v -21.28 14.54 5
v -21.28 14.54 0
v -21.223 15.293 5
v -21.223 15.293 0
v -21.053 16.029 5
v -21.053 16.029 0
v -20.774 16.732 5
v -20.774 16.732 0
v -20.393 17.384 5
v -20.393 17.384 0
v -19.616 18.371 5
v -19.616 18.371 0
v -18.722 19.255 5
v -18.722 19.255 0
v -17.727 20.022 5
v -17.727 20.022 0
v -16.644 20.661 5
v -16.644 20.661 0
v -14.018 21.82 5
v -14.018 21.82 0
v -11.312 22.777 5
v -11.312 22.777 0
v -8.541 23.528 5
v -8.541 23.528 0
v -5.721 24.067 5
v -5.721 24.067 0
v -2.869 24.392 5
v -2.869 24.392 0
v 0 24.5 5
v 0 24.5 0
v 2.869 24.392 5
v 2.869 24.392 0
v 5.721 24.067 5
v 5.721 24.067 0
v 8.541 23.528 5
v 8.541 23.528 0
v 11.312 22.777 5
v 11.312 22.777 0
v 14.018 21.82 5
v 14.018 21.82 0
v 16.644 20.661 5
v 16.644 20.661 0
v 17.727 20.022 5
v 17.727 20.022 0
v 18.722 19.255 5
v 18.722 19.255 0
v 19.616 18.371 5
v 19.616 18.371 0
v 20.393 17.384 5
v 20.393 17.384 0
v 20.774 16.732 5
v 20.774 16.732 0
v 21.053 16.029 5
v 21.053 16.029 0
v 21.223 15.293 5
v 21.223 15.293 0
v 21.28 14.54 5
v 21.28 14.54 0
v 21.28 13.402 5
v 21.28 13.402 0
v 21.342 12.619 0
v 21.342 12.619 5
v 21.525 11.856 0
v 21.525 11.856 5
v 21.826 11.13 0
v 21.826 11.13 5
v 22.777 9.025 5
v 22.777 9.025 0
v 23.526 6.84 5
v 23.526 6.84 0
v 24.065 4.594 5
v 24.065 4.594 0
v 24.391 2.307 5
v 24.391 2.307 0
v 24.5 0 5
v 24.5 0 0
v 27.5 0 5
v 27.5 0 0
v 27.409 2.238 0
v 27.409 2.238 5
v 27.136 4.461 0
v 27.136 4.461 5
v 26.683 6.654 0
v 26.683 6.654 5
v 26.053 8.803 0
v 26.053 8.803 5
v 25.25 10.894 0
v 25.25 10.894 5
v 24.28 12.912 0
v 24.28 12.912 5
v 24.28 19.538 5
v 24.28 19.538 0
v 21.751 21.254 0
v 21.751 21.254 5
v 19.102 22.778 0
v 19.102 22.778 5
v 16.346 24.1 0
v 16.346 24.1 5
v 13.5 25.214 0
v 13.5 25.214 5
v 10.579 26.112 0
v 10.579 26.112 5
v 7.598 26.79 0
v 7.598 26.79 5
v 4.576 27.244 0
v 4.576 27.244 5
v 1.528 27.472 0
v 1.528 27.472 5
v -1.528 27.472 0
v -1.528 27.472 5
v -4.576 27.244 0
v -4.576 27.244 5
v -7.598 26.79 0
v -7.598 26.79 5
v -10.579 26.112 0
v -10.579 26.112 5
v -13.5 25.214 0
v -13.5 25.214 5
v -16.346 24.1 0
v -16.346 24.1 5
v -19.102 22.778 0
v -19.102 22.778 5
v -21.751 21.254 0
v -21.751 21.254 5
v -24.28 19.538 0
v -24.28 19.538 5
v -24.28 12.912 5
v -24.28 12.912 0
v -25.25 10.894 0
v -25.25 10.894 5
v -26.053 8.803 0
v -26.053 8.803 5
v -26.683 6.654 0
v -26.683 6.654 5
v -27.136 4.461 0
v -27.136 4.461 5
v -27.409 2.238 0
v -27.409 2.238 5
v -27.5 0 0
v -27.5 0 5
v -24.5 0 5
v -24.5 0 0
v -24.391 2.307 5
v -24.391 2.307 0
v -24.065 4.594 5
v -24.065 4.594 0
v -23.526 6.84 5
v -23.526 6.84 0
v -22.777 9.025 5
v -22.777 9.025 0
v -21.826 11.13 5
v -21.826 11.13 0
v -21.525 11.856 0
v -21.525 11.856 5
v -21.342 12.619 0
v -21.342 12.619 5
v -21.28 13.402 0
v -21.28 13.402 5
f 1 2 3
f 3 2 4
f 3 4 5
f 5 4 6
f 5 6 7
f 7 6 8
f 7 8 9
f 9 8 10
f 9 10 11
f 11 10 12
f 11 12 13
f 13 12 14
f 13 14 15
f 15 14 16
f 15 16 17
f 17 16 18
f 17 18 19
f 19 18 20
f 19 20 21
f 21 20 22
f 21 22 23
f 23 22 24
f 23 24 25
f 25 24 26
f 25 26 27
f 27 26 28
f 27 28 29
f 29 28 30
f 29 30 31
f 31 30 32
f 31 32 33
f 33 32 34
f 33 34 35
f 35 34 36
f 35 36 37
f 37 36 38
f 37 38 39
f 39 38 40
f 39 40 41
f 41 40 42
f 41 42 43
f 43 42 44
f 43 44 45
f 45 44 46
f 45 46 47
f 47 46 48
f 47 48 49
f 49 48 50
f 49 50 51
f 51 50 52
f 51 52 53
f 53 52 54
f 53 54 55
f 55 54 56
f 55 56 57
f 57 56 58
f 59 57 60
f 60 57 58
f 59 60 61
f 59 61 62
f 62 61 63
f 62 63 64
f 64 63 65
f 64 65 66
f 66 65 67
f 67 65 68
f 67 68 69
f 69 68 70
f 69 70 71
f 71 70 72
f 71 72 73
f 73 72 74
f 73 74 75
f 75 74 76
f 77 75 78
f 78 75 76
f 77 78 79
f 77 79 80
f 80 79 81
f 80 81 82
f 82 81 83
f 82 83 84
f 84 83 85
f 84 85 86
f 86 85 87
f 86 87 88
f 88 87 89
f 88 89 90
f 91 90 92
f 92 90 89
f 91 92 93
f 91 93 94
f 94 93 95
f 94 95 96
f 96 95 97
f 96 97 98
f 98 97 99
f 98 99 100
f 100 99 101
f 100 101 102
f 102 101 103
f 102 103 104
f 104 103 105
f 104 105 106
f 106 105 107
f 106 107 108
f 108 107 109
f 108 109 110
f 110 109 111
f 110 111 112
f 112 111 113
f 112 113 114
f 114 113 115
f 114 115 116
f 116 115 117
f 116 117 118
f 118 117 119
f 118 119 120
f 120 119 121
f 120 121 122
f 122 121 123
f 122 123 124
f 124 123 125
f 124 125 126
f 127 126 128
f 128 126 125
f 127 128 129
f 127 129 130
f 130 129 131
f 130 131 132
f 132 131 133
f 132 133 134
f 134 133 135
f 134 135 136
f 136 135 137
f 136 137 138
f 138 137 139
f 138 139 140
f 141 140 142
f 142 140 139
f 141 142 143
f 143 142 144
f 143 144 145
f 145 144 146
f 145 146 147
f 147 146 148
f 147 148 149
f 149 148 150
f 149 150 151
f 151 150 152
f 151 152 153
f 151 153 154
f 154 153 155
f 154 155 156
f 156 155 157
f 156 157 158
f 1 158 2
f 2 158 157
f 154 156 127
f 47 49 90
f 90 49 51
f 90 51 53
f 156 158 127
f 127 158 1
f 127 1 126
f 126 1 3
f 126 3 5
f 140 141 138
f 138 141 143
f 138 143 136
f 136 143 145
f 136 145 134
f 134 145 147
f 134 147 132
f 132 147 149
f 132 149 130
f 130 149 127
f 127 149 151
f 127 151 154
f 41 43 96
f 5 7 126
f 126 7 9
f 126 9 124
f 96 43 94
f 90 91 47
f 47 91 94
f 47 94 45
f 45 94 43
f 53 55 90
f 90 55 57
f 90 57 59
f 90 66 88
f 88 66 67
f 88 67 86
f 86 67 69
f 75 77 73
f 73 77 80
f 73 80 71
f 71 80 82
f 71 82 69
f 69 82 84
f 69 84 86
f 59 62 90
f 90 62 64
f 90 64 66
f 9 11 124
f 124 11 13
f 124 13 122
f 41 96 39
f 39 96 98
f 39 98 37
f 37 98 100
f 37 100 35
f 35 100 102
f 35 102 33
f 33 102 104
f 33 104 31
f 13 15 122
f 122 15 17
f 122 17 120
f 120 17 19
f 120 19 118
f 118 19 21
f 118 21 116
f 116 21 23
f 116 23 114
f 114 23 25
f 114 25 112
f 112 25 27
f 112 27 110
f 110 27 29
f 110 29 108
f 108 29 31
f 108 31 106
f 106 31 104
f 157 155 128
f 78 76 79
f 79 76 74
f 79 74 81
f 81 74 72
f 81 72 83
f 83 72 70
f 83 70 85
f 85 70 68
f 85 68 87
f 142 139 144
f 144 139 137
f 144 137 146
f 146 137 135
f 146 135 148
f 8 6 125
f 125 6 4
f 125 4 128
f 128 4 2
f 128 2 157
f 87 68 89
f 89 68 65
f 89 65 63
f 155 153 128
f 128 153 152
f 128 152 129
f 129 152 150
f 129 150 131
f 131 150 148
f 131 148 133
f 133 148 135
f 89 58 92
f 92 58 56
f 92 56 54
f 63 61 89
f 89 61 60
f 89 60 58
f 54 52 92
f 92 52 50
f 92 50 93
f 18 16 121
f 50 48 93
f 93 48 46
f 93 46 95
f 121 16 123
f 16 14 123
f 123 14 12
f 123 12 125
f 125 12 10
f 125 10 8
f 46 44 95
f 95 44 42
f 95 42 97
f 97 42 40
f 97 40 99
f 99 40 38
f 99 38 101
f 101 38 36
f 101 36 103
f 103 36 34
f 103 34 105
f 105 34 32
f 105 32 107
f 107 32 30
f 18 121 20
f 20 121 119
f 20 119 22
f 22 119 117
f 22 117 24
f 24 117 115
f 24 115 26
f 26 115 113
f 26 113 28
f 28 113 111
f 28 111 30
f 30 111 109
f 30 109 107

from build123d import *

# Parameters (mm, degrees)
BOSS_EXTRUDE3_DEPTH = 5


with BuildPart() as part:
    # Sketch1 → Boss-Extrude3 (new body)
    with BuildSketch(Plane.XY):
        with BuildLine():
            Line((-27.5, 0), (-24.5, 0))
            ThreePointArc((-24.5, 0), (-23.822061062, 5.723583386), (-21.825762712, 11.130412483))
            ThreePointArc((-21.825762712, 11.130412483), (-21.418354885, 12.233846993), (-21.28, 13.401925235))
            Line((-21.28, 13.401925235), (-21.28, 14.540127049))
            ThreePointArc((-21.28, 14.540127049), (-21.053037703, 16.029459479), (-20.392755565, 17.383582985))
            ThreePointArc((-20.392755565, 17.383582985), (-18.722329772, 19.255294032), (-16.644357741, 20.660874629))
            ThreePointArc((-16.644357741, 20.660874629), (0, 24.5), (16.644357741, 20.660874629))
            ThreePointArc((16.644357741, 20.660874629), (18.722329772, 19.255294032), (20.392755565, 17.383582985))
            ThreePointArc((20.392755565, 17.383582985), (21.053037703, 16.029459479), (21.28, 14.540127049))
            Line((21.28, 14.540127049), (21.28, 13.401925235))
            ThreePointArc((21.28, 13.401925235), (21.418354885, 12.233846993), (21.825762712, 11.130412483))
            ThreePointArc((21.825762712, 11.130412483), (23.822061062, 5.723583386), (24.5, 0))
            Line((24.5, 0), (27.5, 0))
            ThreePointArc((27.5, 0), (26.682859667, 6.653946198), (24.28, 12.9124591))
            Line((24.28, 12.9124591), (24.28, 19.537578604))
            ThreePointArc((24.28, 19.537578604), (0, 27.5), (-24.28, 19.537578604))
            Line((-24.28, 19.537578604), (-24.28, 12.9124591))
            ThreePointArc((-24.28, 12.9124591), (-26.682859667, 6.653946198), (-27.5, 0))
        make_face()
    extrude(amount=BOSS_EXTRUDE3_DEPTH)


solid = part.part
